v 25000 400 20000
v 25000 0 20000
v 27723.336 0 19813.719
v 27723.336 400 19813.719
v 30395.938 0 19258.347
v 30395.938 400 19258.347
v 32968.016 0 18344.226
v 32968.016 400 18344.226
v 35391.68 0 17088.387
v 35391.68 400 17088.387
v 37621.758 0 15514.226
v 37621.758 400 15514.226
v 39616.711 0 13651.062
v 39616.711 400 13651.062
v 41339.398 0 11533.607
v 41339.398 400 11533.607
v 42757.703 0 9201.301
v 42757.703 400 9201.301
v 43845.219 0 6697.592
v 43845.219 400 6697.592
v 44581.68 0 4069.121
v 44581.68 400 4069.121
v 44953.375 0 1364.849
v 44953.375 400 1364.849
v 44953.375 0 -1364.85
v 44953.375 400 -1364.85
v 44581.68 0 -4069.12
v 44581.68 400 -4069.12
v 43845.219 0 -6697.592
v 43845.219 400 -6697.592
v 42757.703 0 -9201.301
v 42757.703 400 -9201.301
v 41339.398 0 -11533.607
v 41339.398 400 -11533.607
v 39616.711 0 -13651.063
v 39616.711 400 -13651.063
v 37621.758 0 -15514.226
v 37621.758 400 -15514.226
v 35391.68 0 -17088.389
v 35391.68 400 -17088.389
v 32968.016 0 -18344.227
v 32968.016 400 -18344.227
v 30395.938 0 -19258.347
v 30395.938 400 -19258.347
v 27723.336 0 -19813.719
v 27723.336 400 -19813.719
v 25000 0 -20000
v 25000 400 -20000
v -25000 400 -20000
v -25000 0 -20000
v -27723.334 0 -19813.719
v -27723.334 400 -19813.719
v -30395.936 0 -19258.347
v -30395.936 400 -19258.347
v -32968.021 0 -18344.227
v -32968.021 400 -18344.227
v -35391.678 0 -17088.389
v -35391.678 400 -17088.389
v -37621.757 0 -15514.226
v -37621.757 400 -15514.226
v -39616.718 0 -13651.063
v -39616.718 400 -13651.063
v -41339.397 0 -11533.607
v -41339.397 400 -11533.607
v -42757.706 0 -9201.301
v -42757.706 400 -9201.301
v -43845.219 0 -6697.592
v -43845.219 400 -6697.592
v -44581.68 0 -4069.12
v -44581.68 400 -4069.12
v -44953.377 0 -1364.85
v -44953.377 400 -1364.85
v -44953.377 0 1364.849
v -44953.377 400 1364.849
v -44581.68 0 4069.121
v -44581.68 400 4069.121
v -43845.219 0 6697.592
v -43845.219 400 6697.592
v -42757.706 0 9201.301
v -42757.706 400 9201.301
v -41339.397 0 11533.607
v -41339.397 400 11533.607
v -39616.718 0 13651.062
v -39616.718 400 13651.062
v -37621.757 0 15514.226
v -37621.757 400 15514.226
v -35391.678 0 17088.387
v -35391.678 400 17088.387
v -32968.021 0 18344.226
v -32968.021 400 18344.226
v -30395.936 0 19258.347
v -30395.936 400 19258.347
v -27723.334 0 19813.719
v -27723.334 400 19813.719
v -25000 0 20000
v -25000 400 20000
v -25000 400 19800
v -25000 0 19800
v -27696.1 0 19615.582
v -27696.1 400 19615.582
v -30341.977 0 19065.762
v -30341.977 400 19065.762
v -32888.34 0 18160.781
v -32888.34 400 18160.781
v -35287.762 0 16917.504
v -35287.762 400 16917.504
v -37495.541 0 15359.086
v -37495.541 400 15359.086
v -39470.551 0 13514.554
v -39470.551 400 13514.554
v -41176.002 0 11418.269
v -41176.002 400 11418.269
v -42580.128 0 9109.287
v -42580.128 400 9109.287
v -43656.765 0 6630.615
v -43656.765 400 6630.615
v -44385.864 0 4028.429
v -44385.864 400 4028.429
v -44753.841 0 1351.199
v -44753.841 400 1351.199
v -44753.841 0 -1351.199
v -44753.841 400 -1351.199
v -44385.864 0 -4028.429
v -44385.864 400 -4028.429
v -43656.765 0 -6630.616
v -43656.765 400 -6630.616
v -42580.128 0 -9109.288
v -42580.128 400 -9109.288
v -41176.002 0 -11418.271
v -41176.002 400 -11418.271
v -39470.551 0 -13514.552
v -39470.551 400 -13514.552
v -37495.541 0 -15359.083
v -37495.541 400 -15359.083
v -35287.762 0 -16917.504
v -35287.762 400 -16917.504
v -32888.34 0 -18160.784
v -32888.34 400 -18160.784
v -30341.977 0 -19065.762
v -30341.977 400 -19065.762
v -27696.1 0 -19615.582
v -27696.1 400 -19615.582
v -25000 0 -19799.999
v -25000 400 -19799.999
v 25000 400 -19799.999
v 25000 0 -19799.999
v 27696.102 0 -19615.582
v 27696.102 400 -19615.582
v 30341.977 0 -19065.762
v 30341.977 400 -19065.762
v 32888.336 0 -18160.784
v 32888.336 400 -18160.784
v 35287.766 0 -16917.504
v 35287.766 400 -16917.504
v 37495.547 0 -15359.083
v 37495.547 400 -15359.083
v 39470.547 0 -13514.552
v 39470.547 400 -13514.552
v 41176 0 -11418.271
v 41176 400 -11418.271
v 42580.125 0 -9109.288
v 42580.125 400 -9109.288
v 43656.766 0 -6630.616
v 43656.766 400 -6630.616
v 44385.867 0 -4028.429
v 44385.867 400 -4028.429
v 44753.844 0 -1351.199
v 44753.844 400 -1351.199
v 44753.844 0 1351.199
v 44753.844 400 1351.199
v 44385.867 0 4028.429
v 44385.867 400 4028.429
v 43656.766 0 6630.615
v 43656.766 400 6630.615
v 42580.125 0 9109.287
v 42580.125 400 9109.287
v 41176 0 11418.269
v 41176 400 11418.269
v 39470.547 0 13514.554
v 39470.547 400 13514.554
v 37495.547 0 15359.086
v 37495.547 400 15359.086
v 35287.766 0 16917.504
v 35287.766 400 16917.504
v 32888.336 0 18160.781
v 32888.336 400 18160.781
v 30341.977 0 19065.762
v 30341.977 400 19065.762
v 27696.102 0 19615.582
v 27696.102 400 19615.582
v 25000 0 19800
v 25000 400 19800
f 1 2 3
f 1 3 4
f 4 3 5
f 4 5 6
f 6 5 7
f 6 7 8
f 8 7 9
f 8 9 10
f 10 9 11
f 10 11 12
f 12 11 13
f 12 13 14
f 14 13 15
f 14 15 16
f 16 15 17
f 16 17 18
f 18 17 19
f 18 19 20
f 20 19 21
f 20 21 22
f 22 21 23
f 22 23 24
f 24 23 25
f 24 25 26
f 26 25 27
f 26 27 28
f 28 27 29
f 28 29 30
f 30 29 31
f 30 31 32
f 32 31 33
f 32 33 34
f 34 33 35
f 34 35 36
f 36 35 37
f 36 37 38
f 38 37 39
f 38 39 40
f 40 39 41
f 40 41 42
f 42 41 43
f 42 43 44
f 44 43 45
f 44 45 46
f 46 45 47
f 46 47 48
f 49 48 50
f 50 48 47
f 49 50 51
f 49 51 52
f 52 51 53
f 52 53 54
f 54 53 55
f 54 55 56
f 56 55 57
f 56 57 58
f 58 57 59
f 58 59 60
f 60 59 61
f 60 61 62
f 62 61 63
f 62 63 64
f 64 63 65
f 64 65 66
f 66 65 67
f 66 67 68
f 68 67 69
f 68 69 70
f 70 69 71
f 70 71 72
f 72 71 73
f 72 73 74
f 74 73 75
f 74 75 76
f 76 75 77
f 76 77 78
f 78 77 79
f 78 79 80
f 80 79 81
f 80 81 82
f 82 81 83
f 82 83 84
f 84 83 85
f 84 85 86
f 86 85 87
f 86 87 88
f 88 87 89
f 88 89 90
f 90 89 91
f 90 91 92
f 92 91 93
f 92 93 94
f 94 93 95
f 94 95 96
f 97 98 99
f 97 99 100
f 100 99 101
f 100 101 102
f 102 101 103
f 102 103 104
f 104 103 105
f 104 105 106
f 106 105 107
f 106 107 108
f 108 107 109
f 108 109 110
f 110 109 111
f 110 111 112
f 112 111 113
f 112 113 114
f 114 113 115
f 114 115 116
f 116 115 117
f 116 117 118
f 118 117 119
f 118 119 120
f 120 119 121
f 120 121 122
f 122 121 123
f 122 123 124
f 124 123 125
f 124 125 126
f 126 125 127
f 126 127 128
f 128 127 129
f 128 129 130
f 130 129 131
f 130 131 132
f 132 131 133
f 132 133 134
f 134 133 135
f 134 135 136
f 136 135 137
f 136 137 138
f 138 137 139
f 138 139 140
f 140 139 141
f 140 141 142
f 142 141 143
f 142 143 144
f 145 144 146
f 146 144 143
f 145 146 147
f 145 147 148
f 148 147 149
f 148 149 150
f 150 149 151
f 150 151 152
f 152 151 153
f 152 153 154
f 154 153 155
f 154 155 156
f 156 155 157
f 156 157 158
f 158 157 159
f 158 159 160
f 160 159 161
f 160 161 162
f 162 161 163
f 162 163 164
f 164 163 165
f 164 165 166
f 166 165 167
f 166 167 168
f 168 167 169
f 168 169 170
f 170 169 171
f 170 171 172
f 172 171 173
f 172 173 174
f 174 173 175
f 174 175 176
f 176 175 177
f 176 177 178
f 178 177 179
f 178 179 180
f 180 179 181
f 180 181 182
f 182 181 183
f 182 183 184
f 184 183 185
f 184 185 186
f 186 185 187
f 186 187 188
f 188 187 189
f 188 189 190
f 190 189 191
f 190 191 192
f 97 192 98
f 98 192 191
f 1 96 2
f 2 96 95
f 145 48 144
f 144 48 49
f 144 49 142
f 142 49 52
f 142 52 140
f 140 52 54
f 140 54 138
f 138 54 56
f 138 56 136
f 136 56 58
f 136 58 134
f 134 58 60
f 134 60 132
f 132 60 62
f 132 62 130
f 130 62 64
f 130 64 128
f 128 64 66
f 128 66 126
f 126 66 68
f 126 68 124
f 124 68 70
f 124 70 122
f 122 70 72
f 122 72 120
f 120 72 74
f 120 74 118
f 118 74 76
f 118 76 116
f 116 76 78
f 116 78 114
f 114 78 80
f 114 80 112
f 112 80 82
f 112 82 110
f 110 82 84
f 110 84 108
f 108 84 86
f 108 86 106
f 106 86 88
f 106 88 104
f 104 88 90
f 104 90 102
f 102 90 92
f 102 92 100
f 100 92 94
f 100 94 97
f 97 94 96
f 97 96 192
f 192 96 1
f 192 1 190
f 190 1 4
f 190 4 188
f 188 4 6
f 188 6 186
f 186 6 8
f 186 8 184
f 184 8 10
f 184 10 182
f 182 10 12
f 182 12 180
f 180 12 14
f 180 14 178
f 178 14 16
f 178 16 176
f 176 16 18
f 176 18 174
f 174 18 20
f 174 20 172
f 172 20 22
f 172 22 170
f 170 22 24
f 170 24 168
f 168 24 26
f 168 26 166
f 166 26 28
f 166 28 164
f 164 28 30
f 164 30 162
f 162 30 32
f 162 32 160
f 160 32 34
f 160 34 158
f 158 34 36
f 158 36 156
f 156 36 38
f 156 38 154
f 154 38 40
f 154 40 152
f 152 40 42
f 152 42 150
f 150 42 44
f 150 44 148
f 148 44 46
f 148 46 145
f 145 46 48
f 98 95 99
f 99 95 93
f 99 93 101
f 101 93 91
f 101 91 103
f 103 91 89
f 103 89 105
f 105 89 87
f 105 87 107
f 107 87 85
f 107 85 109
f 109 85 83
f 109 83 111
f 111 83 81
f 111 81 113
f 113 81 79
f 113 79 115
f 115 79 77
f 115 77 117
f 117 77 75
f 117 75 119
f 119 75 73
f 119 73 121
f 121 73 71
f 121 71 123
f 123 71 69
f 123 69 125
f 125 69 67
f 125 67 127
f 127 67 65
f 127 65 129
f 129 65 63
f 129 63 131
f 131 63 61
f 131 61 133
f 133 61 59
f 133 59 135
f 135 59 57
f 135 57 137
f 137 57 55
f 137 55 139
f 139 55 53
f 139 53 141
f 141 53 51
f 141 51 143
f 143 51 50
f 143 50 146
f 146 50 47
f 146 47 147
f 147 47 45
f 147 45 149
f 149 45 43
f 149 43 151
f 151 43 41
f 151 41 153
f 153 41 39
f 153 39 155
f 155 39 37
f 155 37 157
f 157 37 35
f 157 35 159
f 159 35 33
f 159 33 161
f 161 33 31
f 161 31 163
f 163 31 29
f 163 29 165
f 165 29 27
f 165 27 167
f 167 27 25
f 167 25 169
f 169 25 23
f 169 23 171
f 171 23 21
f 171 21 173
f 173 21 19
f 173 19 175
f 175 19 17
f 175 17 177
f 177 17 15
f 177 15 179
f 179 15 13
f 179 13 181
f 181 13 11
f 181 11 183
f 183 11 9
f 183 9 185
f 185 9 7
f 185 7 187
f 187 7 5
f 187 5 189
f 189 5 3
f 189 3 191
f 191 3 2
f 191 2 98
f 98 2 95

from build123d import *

# Parameters (mm, degrees)
BOSS_EXTRUDE1_DEPTH = 400


with BuildPart() as part:
    # Sketch1 → Boss-Extrude1 (new body)
    with BuildSketch(Plane(origin=(0, 0, 0), x_dir=(1, 0, 0), z_dir=(0, 1, 0))):
        with BuildLine():
            ThreePointArc((25000, 20000), (45000, 0), (25000, -20000))
            Line((25000, -20000), (-25000, -20000))
            ThreePointArc((-25000, -20000), (-45000, 0), (-25000, 20000))
            Line((-25000, 20000), (25000, 20000))
        make_face()
        with BuildLine():
            ThreePointArc((-25000, 19800), (-44800, 0), (-25000, -19800))
            Line((-25000, -19800), (25000, -19800))
            ThreePointArc((25000, -19800), (44800, 0), (25000, 19800))
            Line((25000, 19800), (-25000, 19800))
        make_face(mode=Mode.SUBTRACT)
    extrude(amount=BOSS_EXTRUDE1_DEPTH)


solid = part.part
